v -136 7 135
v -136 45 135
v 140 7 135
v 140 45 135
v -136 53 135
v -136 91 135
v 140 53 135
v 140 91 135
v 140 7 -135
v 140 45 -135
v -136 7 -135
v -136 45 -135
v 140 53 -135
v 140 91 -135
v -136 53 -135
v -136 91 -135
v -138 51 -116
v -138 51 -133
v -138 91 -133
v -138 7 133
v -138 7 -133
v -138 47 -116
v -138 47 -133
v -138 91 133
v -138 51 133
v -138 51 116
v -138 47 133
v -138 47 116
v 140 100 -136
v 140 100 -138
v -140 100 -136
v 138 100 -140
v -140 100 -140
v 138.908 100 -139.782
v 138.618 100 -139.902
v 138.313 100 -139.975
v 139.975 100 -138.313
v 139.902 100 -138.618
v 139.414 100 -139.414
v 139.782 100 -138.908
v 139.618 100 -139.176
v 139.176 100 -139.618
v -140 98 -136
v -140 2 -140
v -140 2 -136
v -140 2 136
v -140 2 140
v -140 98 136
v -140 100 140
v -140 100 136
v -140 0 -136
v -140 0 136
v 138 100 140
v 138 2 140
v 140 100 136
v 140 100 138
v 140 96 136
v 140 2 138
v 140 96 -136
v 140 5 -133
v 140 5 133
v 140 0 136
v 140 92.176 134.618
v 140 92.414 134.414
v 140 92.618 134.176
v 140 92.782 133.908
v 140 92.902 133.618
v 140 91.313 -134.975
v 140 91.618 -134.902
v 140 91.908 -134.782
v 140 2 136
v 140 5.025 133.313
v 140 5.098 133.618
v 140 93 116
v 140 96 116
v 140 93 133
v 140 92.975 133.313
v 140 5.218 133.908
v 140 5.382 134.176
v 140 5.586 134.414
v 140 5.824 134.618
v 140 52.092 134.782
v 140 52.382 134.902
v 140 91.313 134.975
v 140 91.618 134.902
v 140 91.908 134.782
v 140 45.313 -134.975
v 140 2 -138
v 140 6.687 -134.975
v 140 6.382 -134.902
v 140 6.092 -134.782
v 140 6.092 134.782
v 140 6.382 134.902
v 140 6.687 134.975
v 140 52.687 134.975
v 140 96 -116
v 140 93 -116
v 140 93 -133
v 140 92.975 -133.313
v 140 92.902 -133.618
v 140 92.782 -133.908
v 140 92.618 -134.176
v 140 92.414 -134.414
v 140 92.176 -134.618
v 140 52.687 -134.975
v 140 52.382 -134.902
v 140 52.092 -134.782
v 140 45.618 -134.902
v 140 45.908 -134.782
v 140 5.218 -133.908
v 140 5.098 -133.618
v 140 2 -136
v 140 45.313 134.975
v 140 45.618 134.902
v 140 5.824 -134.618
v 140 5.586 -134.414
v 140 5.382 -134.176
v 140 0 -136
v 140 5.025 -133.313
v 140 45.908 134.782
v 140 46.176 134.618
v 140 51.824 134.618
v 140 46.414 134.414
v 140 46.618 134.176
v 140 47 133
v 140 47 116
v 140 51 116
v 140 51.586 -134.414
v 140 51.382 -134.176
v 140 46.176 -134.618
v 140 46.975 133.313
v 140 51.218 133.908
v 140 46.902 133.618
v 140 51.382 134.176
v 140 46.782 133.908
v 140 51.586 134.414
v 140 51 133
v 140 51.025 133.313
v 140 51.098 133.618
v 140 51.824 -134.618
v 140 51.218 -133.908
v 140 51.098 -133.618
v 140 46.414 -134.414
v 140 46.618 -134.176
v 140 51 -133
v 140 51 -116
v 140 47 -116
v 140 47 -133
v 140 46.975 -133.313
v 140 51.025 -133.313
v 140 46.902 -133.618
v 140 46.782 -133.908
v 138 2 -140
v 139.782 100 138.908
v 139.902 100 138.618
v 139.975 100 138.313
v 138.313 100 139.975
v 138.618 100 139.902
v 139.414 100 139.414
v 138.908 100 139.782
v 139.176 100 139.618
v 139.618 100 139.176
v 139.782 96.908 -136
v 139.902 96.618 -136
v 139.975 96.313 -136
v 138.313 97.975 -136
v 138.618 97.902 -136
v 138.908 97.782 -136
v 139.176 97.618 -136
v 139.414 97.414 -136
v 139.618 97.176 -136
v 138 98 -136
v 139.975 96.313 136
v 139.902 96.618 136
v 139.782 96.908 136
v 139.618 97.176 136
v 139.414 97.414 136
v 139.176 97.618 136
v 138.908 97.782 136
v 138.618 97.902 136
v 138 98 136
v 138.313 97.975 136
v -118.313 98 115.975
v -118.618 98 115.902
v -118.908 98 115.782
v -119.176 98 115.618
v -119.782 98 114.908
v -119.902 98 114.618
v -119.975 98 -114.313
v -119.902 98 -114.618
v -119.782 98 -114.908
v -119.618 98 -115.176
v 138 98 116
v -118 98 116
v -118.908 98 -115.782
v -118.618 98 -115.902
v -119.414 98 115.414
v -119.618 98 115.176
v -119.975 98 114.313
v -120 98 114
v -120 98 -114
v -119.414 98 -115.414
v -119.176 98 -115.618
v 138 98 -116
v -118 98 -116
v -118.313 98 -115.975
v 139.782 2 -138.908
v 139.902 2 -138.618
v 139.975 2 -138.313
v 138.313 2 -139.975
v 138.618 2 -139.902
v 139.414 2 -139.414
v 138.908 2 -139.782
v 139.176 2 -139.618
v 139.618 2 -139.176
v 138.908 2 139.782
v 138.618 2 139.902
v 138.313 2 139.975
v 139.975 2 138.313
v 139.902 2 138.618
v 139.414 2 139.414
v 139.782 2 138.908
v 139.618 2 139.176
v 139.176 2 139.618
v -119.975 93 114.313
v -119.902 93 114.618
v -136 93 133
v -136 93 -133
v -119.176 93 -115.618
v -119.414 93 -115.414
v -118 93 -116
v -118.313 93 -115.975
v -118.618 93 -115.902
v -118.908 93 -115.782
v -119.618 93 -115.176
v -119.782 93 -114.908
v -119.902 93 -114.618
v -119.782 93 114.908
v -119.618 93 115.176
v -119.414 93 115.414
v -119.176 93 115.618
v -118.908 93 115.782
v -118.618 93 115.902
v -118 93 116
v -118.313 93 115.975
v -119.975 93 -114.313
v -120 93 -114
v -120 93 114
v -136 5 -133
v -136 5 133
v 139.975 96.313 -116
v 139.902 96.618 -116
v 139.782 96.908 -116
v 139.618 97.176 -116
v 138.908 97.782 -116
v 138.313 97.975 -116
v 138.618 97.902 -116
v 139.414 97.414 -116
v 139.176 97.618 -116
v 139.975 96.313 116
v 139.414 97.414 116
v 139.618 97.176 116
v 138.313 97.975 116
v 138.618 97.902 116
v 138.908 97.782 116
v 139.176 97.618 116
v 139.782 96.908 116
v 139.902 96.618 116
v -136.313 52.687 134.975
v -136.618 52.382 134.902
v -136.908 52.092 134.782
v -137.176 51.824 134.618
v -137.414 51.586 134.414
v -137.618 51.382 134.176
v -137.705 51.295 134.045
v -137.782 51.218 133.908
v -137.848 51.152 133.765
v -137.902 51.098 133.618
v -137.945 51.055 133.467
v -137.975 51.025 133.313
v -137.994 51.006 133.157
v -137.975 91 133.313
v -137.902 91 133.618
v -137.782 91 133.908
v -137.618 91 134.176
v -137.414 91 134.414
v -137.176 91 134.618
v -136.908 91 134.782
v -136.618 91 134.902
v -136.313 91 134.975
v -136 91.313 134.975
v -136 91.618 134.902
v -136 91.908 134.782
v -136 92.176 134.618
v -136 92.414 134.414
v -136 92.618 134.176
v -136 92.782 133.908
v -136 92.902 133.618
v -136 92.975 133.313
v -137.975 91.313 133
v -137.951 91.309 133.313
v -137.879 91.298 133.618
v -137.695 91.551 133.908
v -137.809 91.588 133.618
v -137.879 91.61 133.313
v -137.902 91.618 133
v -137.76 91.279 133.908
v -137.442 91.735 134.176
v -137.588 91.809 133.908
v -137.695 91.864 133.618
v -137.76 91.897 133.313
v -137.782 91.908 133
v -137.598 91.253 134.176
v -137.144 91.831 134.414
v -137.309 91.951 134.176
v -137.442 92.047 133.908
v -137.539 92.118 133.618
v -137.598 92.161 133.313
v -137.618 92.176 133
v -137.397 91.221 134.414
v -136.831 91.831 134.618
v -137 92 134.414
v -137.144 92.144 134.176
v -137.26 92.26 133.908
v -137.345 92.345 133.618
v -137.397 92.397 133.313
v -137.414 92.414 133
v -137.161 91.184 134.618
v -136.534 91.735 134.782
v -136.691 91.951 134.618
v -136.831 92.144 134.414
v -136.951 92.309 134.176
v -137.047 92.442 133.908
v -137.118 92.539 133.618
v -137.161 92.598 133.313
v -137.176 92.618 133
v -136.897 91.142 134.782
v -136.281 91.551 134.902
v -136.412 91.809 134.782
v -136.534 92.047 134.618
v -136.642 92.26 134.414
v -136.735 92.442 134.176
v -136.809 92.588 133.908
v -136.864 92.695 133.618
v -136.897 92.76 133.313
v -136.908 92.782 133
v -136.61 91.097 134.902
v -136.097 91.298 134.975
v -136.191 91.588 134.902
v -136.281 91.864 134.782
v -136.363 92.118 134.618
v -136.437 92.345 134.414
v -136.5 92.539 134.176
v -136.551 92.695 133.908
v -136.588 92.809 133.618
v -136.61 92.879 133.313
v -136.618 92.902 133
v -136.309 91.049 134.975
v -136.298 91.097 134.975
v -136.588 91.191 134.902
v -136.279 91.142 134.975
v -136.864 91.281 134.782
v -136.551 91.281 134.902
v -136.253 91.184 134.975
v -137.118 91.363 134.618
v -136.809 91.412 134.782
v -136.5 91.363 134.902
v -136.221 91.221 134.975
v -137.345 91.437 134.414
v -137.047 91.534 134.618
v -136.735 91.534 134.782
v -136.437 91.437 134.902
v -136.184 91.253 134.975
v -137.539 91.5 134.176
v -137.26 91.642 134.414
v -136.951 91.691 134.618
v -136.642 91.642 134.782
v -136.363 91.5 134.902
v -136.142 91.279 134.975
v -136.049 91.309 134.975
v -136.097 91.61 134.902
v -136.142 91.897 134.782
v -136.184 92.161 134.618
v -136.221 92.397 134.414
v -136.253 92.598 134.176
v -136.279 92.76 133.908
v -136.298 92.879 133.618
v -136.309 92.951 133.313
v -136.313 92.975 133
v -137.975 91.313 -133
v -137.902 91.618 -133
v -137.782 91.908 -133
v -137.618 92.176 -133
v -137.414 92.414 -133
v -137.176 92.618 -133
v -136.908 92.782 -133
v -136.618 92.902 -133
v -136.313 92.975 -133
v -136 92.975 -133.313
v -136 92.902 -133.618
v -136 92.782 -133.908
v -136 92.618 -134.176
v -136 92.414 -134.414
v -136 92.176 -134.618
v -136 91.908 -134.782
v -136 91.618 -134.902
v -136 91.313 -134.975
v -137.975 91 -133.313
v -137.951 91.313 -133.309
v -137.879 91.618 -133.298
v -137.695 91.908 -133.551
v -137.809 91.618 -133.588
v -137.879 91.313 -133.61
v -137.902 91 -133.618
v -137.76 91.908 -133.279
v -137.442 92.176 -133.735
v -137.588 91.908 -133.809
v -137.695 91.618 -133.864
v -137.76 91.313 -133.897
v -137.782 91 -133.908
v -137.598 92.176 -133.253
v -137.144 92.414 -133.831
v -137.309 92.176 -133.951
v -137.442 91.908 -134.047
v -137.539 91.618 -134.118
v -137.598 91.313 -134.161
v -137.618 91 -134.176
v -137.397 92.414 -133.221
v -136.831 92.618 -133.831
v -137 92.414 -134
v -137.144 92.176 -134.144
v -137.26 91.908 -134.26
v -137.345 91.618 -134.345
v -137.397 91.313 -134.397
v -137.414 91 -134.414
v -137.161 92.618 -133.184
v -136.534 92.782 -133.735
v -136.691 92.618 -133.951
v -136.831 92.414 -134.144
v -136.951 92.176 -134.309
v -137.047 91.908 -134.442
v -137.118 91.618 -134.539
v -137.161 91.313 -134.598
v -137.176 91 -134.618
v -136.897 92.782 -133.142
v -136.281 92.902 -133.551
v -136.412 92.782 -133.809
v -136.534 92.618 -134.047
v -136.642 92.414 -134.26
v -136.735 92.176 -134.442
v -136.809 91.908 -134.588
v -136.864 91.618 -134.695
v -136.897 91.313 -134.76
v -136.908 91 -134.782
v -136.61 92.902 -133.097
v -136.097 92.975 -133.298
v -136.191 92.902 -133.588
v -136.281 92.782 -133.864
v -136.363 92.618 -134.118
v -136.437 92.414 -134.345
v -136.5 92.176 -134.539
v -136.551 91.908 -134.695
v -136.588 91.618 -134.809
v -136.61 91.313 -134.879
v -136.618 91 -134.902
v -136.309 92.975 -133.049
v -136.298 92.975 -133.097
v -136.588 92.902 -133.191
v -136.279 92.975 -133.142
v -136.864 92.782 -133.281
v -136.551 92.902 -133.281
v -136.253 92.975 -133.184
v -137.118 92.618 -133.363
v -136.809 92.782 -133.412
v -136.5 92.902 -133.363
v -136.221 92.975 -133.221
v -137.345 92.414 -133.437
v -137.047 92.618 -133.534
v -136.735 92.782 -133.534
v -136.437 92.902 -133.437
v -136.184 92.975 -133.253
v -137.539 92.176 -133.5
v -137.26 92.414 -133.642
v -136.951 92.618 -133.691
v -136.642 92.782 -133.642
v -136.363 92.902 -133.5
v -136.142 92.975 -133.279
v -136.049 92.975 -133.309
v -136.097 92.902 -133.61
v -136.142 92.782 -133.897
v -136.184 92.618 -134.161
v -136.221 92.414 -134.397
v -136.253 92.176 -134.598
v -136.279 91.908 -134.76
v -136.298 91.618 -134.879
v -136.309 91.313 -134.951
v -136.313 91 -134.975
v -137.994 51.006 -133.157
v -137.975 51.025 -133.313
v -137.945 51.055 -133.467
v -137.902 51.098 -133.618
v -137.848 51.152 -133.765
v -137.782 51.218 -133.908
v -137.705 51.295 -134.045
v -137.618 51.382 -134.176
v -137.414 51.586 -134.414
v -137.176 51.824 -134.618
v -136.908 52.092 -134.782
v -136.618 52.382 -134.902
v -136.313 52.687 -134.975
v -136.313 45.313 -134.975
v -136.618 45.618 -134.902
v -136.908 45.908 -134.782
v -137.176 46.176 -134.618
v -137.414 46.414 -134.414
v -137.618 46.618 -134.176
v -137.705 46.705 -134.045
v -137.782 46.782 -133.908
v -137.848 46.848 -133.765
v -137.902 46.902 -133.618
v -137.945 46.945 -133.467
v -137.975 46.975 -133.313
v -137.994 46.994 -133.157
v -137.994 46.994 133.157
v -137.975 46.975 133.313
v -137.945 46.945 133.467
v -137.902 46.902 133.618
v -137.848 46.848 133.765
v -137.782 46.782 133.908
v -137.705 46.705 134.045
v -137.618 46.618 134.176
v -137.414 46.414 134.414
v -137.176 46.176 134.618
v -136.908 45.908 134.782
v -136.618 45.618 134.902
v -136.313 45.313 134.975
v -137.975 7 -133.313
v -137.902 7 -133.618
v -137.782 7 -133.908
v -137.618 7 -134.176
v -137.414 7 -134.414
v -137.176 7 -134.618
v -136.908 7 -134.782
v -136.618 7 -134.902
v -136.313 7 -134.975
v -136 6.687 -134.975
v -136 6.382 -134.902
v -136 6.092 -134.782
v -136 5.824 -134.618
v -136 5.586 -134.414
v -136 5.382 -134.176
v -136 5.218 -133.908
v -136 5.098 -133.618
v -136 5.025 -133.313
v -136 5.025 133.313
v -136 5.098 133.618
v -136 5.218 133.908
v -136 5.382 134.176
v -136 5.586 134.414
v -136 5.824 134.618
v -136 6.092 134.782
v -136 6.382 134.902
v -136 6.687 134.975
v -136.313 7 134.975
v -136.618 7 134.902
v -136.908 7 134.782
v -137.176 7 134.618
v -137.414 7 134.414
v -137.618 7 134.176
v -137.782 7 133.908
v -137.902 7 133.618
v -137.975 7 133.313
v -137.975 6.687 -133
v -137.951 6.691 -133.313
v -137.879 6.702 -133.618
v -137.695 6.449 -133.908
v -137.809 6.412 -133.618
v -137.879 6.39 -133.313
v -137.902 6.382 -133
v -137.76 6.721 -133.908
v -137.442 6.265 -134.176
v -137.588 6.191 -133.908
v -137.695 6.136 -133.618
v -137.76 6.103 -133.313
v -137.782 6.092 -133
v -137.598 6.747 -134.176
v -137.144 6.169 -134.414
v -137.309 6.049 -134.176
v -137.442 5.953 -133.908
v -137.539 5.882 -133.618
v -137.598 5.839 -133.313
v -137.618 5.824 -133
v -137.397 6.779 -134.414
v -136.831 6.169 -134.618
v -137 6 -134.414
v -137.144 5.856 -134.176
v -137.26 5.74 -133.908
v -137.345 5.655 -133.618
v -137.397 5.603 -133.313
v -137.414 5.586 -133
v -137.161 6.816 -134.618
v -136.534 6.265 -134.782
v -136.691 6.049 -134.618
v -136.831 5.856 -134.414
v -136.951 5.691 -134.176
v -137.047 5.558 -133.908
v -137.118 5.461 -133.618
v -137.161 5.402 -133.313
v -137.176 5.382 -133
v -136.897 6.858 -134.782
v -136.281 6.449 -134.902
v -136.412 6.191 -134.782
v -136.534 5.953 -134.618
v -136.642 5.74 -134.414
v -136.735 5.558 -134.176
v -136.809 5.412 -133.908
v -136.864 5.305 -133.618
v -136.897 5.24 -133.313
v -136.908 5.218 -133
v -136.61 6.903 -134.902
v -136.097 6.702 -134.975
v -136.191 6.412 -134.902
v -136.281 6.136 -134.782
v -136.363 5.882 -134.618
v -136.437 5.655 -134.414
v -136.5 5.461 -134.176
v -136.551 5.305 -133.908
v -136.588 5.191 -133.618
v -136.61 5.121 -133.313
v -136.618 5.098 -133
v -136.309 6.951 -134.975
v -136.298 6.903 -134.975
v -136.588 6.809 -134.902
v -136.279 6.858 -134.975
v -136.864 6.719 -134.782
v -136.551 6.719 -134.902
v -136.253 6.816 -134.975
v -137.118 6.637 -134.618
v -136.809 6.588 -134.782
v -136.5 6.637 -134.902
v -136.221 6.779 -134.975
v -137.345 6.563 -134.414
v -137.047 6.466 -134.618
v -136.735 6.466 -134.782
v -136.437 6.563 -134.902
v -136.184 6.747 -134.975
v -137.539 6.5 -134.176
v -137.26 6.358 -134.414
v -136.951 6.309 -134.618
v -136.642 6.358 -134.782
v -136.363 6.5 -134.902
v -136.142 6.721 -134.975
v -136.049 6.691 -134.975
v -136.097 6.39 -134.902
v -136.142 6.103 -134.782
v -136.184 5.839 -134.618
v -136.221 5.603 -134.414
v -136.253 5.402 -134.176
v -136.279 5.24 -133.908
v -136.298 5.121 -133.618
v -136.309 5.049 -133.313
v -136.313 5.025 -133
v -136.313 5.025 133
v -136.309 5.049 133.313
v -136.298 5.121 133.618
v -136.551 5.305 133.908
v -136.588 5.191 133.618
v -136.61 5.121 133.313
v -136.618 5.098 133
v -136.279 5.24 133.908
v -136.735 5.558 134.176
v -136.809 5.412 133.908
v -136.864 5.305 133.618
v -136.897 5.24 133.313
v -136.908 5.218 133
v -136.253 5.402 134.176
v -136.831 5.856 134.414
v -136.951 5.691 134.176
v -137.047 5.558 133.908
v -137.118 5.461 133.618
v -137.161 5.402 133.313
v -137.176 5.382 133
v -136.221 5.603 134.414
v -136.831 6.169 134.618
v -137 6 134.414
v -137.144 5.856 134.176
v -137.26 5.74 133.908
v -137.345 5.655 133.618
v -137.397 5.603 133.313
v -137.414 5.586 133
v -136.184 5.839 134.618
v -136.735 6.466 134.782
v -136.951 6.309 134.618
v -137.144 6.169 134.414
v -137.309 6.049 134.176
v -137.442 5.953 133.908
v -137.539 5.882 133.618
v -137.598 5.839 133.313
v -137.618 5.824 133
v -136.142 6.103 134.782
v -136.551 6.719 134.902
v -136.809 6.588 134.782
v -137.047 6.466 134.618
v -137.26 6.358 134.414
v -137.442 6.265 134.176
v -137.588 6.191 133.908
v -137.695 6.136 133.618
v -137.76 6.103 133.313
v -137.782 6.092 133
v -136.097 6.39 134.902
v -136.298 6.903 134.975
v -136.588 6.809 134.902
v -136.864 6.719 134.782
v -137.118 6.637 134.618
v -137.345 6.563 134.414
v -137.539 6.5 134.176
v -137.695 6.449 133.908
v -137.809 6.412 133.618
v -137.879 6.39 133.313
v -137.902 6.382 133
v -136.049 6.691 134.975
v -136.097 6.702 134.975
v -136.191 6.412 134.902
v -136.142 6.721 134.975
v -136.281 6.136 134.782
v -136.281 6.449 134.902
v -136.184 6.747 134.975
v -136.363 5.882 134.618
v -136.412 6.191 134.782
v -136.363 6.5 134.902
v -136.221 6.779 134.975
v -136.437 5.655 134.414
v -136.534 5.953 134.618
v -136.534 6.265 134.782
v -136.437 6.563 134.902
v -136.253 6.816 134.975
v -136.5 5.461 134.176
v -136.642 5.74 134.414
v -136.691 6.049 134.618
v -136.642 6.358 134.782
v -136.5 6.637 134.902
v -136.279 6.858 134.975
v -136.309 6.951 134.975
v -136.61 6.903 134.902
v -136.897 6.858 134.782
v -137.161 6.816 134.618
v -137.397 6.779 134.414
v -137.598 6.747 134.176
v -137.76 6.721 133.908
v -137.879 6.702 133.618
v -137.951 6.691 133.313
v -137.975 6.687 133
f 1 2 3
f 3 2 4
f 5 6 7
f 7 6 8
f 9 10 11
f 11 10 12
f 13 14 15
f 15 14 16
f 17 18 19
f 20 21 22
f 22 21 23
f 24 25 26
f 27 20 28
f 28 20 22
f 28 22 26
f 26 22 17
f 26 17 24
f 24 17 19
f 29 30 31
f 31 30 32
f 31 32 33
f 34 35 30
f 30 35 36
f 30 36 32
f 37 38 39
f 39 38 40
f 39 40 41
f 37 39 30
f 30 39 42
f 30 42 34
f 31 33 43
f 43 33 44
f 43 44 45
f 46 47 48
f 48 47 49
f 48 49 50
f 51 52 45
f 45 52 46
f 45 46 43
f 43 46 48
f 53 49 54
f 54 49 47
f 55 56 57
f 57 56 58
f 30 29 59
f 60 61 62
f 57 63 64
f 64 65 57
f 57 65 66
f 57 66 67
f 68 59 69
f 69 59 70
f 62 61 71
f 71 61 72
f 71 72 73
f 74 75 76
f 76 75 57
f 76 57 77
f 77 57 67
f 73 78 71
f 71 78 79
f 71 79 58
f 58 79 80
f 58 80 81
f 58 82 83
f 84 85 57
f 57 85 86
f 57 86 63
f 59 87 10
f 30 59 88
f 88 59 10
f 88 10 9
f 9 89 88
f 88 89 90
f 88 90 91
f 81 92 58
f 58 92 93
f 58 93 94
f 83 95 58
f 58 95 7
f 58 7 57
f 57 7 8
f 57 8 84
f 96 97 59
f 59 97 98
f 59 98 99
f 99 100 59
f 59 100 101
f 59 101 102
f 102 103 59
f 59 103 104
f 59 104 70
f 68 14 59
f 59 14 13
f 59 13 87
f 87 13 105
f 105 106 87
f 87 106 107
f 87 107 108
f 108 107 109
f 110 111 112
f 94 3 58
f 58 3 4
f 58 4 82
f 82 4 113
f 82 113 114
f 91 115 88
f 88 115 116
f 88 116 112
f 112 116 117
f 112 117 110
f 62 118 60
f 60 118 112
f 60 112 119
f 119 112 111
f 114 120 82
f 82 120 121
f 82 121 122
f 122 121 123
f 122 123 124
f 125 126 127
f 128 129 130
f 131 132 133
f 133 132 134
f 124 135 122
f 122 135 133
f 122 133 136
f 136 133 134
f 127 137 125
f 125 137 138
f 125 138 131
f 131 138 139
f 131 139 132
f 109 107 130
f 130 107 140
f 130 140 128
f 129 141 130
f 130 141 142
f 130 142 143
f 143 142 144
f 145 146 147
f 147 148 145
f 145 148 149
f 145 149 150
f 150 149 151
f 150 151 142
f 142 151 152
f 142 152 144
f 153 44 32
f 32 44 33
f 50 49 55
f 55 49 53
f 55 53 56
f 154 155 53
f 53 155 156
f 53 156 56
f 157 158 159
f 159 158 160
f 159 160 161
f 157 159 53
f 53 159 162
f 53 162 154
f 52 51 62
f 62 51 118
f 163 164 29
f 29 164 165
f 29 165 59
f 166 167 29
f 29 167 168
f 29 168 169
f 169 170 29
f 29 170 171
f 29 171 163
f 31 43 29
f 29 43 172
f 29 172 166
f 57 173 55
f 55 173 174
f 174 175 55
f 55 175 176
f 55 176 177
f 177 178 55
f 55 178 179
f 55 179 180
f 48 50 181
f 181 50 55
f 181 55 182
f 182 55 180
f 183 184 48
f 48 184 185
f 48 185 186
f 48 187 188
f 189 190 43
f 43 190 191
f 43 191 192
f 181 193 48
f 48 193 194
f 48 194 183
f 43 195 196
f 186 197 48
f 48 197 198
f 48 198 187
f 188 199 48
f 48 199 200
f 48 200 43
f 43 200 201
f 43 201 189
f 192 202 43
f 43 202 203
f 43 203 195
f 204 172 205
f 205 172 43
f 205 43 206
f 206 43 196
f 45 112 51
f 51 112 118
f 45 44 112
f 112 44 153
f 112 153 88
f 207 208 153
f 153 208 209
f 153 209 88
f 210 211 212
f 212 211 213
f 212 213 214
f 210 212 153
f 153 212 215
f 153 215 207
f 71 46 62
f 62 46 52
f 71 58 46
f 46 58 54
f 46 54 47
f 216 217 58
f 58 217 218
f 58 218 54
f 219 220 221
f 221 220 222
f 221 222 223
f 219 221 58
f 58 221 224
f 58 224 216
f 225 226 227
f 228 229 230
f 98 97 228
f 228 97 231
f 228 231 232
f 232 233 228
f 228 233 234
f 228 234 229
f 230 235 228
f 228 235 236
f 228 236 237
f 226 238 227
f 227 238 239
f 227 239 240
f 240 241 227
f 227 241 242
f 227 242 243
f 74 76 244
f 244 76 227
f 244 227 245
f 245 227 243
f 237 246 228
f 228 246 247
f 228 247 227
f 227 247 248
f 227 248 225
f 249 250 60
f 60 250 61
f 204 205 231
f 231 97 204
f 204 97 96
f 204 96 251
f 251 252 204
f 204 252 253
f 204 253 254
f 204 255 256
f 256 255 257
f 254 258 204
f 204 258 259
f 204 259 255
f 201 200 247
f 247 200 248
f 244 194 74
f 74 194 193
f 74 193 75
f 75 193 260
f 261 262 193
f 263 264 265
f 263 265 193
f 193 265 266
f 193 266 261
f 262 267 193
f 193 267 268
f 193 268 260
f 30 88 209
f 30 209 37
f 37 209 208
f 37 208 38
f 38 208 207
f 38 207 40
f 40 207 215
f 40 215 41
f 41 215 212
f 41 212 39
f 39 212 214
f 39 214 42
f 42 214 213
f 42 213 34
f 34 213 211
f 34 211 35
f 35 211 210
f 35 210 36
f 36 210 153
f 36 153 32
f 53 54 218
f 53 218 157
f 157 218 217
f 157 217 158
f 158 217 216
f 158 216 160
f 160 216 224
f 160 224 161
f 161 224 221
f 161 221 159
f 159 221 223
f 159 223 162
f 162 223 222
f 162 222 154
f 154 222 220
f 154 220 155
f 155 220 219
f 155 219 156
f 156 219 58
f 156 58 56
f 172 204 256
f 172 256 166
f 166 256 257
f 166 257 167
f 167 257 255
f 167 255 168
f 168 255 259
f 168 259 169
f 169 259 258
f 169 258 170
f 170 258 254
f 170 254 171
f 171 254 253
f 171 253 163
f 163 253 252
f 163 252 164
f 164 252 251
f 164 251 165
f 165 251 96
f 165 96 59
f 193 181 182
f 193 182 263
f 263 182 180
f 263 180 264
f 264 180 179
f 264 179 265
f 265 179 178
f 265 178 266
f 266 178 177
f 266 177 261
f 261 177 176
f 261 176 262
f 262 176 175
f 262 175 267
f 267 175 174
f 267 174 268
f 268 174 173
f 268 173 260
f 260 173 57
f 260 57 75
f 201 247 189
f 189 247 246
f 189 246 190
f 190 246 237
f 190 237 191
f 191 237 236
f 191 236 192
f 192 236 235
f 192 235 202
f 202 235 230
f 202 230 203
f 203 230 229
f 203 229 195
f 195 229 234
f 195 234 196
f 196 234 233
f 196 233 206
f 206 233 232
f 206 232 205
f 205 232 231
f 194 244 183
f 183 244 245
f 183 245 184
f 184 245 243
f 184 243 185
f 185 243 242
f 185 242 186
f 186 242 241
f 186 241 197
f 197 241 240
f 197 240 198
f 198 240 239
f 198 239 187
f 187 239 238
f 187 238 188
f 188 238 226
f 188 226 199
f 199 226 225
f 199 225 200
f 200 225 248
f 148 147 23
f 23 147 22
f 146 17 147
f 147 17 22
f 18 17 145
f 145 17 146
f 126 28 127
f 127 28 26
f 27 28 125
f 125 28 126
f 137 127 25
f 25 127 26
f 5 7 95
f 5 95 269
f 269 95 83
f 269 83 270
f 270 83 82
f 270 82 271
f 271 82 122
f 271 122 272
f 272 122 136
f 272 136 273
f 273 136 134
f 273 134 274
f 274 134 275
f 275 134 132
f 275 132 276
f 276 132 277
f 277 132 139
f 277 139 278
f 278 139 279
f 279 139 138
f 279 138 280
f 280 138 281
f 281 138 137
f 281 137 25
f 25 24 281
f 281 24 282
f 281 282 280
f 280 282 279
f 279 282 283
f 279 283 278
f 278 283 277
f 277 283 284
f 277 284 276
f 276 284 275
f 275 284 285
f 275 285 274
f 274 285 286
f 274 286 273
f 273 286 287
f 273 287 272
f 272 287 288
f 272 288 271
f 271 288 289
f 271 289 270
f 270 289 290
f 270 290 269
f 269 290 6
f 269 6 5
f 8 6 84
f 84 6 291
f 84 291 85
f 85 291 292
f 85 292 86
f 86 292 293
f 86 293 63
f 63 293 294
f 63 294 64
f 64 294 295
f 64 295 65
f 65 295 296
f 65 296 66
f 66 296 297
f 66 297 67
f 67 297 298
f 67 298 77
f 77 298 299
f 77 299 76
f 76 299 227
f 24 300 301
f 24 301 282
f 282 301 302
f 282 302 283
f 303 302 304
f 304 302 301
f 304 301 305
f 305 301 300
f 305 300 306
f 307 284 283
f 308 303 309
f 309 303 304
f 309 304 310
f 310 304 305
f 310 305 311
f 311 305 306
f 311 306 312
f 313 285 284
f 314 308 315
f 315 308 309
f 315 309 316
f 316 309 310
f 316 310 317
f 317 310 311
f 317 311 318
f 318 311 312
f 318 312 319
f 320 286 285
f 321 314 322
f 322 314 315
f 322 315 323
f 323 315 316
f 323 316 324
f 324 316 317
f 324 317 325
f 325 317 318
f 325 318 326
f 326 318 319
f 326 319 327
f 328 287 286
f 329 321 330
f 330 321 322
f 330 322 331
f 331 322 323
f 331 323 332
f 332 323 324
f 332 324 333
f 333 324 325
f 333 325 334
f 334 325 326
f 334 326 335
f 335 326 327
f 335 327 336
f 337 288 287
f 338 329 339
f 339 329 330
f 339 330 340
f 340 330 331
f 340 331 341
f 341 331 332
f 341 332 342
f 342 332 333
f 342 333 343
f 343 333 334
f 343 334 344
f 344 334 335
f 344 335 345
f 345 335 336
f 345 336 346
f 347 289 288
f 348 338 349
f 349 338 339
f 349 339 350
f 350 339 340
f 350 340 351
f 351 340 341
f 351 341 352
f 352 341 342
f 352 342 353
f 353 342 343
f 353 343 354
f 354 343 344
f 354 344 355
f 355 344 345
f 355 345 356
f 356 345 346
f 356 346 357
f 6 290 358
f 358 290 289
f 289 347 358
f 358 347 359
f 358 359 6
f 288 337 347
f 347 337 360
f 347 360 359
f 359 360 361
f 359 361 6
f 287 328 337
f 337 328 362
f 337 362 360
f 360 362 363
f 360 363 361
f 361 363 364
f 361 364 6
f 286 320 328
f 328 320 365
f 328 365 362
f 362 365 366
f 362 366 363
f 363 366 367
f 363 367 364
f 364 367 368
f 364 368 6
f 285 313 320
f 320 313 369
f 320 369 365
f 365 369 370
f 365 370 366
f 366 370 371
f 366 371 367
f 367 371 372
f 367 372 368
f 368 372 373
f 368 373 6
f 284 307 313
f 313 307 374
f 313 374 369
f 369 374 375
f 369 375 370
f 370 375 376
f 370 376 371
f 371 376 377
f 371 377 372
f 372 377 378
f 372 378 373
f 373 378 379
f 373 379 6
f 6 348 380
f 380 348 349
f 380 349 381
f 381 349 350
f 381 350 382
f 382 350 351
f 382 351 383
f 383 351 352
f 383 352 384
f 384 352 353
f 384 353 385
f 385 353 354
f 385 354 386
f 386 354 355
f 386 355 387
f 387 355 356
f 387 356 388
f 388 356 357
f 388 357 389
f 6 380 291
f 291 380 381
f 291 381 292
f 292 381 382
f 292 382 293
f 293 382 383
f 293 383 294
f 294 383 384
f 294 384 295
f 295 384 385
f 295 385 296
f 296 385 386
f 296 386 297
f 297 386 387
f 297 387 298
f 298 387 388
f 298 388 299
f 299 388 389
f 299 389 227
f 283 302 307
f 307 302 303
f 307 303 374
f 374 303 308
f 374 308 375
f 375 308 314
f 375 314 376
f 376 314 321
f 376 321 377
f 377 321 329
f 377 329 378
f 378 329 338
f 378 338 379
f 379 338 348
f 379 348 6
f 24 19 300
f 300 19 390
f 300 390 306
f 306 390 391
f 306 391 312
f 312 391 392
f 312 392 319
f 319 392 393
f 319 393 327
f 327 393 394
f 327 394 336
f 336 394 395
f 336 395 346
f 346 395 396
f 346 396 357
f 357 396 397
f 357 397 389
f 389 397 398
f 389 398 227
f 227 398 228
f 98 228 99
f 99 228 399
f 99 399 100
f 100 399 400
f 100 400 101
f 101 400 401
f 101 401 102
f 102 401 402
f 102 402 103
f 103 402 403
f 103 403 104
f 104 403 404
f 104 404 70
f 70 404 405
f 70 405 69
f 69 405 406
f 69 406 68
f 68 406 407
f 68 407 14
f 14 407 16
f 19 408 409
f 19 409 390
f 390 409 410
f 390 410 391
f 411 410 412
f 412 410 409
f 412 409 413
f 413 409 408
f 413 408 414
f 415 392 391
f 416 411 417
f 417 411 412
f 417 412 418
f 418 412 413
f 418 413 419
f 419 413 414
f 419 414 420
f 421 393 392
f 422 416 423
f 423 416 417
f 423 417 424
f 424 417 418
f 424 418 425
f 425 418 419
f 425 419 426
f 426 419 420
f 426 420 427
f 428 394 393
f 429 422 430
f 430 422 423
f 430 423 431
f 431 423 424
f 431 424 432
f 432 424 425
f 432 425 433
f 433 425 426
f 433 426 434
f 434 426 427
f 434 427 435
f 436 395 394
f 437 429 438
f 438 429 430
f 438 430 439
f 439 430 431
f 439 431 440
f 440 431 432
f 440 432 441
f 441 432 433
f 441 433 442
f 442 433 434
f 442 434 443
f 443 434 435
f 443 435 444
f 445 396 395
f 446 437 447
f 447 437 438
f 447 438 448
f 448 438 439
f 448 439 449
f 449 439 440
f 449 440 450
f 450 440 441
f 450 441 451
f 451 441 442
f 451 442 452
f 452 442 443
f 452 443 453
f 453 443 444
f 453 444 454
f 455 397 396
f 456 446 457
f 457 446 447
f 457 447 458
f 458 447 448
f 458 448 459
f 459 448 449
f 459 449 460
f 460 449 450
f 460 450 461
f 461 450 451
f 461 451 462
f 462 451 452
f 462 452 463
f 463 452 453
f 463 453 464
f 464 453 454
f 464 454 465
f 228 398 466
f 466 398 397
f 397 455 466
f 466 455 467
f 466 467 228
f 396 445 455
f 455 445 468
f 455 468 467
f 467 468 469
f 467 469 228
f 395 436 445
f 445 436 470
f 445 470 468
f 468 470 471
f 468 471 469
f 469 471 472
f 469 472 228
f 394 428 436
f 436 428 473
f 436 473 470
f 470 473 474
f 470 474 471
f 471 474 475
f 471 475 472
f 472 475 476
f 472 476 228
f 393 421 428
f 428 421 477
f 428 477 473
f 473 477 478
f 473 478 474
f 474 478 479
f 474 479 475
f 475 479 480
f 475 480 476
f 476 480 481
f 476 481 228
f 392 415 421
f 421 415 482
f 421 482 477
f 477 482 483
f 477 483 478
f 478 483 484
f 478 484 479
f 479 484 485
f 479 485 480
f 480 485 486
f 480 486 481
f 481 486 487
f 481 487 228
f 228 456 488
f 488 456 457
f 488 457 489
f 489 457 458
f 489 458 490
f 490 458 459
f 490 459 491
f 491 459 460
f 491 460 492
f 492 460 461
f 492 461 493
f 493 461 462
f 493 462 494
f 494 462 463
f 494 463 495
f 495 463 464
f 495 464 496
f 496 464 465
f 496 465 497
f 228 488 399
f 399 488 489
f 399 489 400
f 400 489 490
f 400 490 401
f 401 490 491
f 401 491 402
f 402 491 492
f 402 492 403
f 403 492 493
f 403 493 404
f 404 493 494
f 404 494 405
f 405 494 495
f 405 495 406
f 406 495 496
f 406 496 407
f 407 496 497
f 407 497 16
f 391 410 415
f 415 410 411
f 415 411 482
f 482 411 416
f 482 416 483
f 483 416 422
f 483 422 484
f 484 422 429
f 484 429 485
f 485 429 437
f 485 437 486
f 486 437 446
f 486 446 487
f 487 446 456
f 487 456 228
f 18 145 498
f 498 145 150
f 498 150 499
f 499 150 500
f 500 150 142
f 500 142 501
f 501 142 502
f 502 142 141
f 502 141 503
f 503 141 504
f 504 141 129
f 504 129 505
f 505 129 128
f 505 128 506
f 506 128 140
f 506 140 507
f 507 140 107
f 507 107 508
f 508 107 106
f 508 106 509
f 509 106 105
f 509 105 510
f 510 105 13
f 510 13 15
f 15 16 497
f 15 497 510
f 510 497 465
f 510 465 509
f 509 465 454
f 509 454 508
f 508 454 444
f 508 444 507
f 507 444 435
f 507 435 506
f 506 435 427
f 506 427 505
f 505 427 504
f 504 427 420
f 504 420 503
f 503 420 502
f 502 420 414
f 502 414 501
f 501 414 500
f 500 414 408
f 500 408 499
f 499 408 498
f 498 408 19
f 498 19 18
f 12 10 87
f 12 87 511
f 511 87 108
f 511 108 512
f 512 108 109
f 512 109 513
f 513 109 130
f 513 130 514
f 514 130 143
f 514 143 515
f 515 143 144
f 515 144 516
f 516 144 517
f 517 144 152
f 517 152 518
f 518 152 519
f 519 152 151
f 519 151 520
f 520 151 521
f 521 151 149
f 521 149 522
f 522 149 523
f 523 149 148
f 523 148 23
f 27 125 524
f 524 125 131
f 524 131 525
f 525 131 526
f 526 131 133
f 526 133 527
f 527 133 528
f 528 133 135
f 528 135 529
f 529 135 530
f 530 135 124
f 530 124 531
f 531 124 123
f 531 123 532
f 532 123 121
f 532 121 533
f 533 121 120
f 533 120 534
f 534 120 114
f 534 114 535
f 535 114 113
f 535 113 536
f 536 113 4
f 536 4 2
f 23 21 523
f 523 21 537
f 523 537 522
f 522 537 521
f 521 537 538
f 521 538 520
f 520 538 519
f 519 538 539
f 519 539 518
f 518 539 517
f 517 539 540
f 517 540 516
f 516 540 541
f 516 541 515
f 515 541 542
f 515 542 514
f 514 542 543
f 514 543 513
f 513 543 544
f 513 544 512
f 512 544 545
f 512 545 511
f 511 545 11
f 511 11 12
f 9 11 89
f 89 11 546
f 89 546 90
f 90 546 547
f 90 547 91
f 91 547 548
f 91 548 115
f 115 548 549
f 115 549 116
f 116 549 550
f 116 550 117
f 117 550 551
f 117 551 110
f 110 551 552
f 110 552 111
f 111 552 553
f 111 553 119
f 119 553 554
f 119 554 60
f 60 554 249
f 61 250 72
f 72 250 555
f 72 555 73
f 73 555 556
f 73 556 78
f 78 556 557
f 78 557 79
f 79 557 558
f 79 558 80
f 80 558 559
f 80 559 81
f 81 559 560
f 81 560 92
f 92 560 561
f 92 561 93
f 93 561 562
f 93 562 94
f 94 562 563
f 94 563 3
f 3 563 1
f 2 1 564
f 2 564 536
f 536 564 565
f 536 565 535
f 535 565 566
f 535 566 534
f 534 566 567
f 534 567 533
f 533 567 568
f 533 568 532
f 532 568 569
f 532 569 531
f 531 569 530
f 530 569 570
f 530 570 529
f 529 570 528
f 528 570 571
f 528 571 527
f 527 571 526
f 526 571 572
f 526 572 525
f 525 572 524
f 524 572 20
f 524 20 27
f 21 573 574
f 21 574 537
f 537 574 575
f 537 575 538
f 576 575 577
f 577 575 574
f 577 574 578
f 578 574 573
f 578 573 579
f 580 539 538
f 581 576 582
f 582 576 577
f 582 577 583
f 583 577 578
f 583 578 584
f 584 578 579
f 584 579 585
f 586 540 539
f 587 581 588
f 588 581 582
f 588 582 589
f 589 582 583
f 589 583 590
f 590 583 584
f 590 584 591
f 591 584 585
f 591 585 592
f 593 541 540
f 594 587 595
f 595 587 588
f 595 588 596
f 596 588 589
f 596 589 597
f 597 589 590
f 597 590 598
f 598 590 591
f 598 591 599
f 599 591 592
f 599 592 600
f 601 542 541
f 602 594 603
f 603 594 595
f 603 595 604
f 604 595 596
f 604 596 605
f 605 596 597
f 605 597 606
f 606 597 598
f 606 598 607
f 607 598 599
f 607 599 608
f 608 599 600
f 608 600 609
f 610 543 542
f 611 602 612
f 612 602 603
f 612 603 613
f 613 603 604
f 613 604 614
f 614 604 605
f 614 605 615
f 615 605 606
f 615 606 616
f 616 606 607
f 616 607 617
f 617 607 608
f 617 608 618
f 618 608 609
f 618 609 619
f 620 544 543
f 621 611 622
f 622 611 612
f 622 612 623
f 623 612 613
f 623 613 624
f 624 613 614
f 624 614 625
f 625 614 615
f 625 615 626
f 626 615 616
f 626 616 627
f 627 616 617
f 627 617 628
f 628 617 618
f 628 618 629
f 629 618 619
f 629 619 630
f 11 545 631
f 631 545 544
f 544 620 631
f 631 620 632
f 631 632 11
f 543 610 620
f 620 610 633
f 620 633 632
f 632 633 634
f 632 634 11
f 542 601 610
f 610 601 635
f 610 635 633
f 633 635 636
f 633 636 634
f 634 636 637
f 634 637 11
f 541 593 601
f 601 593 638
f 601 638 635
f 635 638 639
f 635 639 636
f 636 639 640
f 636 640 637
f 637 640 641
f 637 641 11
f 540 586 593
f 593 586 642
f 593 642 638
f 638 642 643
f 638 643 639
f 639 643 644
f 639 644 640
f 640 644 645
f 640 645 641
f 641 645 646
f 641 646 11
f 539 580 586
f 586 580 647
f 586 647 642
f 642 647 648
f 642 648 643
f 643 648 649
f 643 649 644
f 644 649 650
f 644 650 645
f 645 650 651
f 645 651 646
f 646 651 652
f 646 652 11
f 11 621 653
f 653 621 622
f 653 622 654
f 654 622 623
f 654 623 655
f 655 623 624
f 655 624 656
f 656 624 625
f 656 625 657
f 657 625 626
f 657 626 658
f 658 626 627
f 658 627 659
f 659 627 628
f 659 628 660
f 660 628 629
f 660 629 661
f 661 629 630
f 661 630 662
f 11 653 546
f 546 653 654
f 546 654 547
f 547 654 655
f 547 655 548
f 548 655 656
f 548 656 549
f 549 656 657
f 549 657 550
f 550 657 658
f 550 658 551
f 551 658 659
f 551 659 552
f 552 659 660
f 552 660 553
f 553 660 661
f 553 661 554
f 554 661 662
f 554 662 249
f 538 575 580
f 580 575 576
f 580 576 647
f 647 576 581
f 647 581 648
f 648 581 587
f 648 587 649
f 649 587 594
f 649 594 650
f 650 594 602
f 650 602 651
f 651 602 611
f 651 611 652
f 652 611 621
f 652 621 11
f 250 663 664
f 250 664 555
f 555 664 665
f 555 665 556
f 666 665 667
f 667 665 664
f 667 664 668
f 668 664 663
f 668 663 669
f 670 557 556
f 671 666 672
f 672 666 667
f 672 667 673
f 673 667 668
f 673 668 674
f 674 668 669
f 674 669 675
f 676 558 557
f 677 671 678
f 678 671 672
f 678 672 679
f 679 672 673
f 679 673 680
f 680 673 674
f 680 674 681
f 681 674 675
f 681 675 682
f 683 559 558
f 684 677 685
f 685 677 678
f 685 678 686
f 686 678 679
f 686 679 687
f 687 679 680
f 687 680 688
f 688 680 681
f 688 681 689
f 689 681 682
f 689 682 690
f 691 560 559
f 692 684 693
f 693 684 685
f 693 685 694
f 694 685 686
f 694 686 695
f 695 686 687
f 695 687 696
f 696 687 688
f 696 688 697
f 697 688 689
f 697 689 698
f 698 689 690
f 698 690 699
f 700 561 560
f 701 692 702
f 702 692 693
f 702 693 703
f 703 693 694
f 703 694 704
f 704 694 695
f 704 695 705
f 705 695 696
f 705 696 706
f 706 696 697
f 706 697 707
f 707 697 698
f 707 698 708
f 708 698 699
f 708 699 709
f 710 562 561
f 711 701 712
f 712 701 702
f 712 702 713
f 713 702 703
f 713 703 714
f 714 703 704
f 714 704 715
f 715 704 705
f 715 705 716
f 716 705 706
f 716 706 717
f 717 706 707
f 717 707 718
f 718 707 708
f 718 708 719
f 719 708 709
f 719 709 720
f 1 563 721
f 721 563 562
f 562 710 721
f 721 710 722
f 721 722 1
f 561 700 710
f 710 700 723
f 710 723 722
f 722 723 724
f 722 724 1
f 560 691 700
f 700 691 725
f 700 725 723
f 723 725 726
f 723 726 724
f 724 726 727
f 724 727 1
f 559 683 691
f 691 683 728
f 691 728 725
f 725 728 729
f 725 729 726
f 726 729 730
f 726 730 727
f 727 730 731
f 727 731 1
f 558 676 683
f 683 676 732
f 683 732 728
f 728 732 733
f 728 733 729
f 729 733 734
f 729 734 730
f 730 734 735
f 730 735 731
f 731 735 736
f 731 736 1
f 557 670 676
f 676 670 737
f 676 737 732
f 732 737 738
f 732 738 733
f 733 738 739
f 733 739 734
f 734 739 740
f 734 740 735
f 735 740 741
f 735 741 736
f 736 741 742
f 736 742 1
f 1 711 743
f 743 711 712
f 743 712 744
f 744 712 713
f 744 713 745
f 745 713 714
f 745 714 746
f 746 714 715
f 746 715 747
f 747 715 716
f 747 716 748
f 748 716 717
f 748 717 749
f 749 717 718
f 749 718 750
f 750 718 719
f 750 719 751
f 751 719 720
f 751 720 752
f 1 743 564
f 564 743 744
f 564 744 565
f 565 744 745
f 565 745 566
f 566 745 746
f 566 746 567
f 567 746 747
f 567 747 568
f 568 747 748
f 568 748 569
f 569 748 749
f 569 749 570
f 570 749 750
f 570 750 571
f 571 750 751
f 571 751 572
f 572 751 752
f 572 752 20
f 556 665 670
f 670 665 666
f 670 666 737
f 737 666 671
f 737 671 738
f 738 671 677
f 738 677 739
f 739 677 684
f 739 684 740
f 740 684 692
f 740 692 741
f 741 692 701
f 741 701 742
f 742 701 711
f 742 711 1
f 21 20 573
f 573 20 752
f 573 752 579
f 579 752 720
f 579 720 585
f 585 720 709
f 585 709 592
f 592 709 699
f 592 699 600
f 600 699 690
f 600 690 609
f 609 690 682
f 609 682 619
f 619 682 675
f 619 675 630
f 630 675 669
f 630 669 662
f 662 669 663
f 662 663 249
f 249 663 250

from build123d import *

# Parameters (mm, degrees)
SKETCH_1_W          = 280
SKETCH_1_H          = 280
EXTRUDE_1_DEPTH     = 100
SKETCH_2_W          = 280
SKETCH_2_H          = 272
CUT_EXTRUDE_1_DEPTH = 2
SKETCH_3_W          = 280
SKETCH_3_H          = 4
CUT_EXTRUDE_2_DEPTH = 2
SKETCH_4_W          = 270
SKETCH_4_H          = 88
CUT_EXTRUDE_3_DEPTH = 278
SKETCH_6_W          = 260
SKETCH_6_H          = 232
CUT_EXTRUDE_7_DEPTH = 93
FILLET_4_R          = 2
FILLET_5_R          = 2
FILLET_6_R          = 2
SKETCH_8_W          = 19
SKETCH_8_H          = 4
EXTRUDE_2_DEPTH     = 278
FILLET_7_R          = 2


with BuildPart() as part:
    # 草图1 → 凸台-拉伸1 (new body)
    with BuildSketch(Plane(origin=(0, 0, 0), x_dir=(1, 0, 0), z_dir=(0, 1, 0))):
        Rectangle(SKETCH_1_W, SKETCH_1_H)
    extrude(amount=EXTRUDE_1_DEPTH)

    # 草图2 → 切除-拉伸1 (cut)
    with BuildSketch(Plane(origin=(0, 100, 0), x_dir=(1, 0, 0), z_dir=(0, 1, 0))):
        Rectangle(SKETCH_2_W, SKETCH_2_H)
    extrude(amount=-CUT_EXTRUDE_1_DEPTH, mode=Mode.SUBTRACT)

    # 草图3 → 切除-拉伸2 (cut)
    with BuildSketch(Plane.XZ):
        with Locations((0, 138)):
            Rectangle(SKETCH_3_W, SKETCH_3_H)
        with Locations((0, -138)):
            Rectangle(SKETCH_3_W, SKETCH_3_H)
    extrude(amount=-CUT_EXTRUDE_2_DEPTH, mode=Mode.SUBTRACT)

    # 草图4 → 切除-拉伸3 (cut)
    with BuildSketch(Plane(origin=(140, 0, 0), x_dir=(0, 0, -1), z_dir=(1, 0, 0))):
        with Locations((0, 49)):
            Rectangle(SKETCH_4_W, SKETCH_4_H)
    extrude(amount=-CUT_EXTRUDE_3_DEPTH, mode=Mode.SUBTRACT)

    # 草图6 → 切除-拉伸7 (cut)
    with BuildSketch(Plane(origin=(0, 98, 0), x_dir=(1, 0, 0), z_dir=(0, 1, 0))):
        with Locations((10, 0)):
            Rectangle(SKETCH_6_W, SKETCH_6_H)
    extrude(amount=-CUT_EXTRUDE_7_DEPTH, mode=Mode.SUBTRACT)

    # 圆角4
    fillet_4_edges = [part.edges().sort_by_distance(p)[0] for p in [
        (140, 51, -140),
        (140, 51, 140),
    ]]
    fillet(fillet_4_edges, radius=FILLET_4_R)

    # 圆角5
    fillet_5_edges = [part.edges().sort_by_distance(p)[0] for p in [
        (140, 98, 126),
        (140, 98, -126),
    ]]
    fillet(fillet_5_edges, radius=FILLET_5_R)

    # 圆角6
    fillet_6_edges = [part.edges().sort_by_distance(p)[0] for p in [
        (-120, 95.5, -116),
        (-120, 95.5, 116),
    ]]
    fillet(fillet_6_edges, radius=FILLET_6_R)

    # 草图8 → 凸台-拉伸2 (add)
    with BuildSketch(Plane(origin=(-138, 0, 0), x_dir=(0, 0, -1), z_dir=(1, 0, 0))):
        with Locations((-125.5, 49)):
            Rectangle(SKETCH_8_W, SKETCH_8_H)
        with Locations((125.5, 49)):
            Rectangle(SKETCH_8_W, SKETCH_8_H)
    extrude(amount=EXTRUDE_2_DEPTH)

    # 圆角7
    fillet_7_edges = [part.edges().sort_by_distance(p)[0] for p in [
        (-138, 72, 135),
        (-138, 26, -135),
        (1, 47, 135),
        (1, 51, 135),
        (1, 47, -135),
        (1, 51, -135),
        (1, 5, 135),
        (1, 93, 135),
        (1, 93, -135),
        (1, 5, -135),
        (-138, 26, 135),
        (-138, 93, 0),
        (-138, 72, -135),
        (-138, 5, 0),
    ]]
    fillet(fillet_7_edges, radius=FILLET_7_R)


solid = part.part
